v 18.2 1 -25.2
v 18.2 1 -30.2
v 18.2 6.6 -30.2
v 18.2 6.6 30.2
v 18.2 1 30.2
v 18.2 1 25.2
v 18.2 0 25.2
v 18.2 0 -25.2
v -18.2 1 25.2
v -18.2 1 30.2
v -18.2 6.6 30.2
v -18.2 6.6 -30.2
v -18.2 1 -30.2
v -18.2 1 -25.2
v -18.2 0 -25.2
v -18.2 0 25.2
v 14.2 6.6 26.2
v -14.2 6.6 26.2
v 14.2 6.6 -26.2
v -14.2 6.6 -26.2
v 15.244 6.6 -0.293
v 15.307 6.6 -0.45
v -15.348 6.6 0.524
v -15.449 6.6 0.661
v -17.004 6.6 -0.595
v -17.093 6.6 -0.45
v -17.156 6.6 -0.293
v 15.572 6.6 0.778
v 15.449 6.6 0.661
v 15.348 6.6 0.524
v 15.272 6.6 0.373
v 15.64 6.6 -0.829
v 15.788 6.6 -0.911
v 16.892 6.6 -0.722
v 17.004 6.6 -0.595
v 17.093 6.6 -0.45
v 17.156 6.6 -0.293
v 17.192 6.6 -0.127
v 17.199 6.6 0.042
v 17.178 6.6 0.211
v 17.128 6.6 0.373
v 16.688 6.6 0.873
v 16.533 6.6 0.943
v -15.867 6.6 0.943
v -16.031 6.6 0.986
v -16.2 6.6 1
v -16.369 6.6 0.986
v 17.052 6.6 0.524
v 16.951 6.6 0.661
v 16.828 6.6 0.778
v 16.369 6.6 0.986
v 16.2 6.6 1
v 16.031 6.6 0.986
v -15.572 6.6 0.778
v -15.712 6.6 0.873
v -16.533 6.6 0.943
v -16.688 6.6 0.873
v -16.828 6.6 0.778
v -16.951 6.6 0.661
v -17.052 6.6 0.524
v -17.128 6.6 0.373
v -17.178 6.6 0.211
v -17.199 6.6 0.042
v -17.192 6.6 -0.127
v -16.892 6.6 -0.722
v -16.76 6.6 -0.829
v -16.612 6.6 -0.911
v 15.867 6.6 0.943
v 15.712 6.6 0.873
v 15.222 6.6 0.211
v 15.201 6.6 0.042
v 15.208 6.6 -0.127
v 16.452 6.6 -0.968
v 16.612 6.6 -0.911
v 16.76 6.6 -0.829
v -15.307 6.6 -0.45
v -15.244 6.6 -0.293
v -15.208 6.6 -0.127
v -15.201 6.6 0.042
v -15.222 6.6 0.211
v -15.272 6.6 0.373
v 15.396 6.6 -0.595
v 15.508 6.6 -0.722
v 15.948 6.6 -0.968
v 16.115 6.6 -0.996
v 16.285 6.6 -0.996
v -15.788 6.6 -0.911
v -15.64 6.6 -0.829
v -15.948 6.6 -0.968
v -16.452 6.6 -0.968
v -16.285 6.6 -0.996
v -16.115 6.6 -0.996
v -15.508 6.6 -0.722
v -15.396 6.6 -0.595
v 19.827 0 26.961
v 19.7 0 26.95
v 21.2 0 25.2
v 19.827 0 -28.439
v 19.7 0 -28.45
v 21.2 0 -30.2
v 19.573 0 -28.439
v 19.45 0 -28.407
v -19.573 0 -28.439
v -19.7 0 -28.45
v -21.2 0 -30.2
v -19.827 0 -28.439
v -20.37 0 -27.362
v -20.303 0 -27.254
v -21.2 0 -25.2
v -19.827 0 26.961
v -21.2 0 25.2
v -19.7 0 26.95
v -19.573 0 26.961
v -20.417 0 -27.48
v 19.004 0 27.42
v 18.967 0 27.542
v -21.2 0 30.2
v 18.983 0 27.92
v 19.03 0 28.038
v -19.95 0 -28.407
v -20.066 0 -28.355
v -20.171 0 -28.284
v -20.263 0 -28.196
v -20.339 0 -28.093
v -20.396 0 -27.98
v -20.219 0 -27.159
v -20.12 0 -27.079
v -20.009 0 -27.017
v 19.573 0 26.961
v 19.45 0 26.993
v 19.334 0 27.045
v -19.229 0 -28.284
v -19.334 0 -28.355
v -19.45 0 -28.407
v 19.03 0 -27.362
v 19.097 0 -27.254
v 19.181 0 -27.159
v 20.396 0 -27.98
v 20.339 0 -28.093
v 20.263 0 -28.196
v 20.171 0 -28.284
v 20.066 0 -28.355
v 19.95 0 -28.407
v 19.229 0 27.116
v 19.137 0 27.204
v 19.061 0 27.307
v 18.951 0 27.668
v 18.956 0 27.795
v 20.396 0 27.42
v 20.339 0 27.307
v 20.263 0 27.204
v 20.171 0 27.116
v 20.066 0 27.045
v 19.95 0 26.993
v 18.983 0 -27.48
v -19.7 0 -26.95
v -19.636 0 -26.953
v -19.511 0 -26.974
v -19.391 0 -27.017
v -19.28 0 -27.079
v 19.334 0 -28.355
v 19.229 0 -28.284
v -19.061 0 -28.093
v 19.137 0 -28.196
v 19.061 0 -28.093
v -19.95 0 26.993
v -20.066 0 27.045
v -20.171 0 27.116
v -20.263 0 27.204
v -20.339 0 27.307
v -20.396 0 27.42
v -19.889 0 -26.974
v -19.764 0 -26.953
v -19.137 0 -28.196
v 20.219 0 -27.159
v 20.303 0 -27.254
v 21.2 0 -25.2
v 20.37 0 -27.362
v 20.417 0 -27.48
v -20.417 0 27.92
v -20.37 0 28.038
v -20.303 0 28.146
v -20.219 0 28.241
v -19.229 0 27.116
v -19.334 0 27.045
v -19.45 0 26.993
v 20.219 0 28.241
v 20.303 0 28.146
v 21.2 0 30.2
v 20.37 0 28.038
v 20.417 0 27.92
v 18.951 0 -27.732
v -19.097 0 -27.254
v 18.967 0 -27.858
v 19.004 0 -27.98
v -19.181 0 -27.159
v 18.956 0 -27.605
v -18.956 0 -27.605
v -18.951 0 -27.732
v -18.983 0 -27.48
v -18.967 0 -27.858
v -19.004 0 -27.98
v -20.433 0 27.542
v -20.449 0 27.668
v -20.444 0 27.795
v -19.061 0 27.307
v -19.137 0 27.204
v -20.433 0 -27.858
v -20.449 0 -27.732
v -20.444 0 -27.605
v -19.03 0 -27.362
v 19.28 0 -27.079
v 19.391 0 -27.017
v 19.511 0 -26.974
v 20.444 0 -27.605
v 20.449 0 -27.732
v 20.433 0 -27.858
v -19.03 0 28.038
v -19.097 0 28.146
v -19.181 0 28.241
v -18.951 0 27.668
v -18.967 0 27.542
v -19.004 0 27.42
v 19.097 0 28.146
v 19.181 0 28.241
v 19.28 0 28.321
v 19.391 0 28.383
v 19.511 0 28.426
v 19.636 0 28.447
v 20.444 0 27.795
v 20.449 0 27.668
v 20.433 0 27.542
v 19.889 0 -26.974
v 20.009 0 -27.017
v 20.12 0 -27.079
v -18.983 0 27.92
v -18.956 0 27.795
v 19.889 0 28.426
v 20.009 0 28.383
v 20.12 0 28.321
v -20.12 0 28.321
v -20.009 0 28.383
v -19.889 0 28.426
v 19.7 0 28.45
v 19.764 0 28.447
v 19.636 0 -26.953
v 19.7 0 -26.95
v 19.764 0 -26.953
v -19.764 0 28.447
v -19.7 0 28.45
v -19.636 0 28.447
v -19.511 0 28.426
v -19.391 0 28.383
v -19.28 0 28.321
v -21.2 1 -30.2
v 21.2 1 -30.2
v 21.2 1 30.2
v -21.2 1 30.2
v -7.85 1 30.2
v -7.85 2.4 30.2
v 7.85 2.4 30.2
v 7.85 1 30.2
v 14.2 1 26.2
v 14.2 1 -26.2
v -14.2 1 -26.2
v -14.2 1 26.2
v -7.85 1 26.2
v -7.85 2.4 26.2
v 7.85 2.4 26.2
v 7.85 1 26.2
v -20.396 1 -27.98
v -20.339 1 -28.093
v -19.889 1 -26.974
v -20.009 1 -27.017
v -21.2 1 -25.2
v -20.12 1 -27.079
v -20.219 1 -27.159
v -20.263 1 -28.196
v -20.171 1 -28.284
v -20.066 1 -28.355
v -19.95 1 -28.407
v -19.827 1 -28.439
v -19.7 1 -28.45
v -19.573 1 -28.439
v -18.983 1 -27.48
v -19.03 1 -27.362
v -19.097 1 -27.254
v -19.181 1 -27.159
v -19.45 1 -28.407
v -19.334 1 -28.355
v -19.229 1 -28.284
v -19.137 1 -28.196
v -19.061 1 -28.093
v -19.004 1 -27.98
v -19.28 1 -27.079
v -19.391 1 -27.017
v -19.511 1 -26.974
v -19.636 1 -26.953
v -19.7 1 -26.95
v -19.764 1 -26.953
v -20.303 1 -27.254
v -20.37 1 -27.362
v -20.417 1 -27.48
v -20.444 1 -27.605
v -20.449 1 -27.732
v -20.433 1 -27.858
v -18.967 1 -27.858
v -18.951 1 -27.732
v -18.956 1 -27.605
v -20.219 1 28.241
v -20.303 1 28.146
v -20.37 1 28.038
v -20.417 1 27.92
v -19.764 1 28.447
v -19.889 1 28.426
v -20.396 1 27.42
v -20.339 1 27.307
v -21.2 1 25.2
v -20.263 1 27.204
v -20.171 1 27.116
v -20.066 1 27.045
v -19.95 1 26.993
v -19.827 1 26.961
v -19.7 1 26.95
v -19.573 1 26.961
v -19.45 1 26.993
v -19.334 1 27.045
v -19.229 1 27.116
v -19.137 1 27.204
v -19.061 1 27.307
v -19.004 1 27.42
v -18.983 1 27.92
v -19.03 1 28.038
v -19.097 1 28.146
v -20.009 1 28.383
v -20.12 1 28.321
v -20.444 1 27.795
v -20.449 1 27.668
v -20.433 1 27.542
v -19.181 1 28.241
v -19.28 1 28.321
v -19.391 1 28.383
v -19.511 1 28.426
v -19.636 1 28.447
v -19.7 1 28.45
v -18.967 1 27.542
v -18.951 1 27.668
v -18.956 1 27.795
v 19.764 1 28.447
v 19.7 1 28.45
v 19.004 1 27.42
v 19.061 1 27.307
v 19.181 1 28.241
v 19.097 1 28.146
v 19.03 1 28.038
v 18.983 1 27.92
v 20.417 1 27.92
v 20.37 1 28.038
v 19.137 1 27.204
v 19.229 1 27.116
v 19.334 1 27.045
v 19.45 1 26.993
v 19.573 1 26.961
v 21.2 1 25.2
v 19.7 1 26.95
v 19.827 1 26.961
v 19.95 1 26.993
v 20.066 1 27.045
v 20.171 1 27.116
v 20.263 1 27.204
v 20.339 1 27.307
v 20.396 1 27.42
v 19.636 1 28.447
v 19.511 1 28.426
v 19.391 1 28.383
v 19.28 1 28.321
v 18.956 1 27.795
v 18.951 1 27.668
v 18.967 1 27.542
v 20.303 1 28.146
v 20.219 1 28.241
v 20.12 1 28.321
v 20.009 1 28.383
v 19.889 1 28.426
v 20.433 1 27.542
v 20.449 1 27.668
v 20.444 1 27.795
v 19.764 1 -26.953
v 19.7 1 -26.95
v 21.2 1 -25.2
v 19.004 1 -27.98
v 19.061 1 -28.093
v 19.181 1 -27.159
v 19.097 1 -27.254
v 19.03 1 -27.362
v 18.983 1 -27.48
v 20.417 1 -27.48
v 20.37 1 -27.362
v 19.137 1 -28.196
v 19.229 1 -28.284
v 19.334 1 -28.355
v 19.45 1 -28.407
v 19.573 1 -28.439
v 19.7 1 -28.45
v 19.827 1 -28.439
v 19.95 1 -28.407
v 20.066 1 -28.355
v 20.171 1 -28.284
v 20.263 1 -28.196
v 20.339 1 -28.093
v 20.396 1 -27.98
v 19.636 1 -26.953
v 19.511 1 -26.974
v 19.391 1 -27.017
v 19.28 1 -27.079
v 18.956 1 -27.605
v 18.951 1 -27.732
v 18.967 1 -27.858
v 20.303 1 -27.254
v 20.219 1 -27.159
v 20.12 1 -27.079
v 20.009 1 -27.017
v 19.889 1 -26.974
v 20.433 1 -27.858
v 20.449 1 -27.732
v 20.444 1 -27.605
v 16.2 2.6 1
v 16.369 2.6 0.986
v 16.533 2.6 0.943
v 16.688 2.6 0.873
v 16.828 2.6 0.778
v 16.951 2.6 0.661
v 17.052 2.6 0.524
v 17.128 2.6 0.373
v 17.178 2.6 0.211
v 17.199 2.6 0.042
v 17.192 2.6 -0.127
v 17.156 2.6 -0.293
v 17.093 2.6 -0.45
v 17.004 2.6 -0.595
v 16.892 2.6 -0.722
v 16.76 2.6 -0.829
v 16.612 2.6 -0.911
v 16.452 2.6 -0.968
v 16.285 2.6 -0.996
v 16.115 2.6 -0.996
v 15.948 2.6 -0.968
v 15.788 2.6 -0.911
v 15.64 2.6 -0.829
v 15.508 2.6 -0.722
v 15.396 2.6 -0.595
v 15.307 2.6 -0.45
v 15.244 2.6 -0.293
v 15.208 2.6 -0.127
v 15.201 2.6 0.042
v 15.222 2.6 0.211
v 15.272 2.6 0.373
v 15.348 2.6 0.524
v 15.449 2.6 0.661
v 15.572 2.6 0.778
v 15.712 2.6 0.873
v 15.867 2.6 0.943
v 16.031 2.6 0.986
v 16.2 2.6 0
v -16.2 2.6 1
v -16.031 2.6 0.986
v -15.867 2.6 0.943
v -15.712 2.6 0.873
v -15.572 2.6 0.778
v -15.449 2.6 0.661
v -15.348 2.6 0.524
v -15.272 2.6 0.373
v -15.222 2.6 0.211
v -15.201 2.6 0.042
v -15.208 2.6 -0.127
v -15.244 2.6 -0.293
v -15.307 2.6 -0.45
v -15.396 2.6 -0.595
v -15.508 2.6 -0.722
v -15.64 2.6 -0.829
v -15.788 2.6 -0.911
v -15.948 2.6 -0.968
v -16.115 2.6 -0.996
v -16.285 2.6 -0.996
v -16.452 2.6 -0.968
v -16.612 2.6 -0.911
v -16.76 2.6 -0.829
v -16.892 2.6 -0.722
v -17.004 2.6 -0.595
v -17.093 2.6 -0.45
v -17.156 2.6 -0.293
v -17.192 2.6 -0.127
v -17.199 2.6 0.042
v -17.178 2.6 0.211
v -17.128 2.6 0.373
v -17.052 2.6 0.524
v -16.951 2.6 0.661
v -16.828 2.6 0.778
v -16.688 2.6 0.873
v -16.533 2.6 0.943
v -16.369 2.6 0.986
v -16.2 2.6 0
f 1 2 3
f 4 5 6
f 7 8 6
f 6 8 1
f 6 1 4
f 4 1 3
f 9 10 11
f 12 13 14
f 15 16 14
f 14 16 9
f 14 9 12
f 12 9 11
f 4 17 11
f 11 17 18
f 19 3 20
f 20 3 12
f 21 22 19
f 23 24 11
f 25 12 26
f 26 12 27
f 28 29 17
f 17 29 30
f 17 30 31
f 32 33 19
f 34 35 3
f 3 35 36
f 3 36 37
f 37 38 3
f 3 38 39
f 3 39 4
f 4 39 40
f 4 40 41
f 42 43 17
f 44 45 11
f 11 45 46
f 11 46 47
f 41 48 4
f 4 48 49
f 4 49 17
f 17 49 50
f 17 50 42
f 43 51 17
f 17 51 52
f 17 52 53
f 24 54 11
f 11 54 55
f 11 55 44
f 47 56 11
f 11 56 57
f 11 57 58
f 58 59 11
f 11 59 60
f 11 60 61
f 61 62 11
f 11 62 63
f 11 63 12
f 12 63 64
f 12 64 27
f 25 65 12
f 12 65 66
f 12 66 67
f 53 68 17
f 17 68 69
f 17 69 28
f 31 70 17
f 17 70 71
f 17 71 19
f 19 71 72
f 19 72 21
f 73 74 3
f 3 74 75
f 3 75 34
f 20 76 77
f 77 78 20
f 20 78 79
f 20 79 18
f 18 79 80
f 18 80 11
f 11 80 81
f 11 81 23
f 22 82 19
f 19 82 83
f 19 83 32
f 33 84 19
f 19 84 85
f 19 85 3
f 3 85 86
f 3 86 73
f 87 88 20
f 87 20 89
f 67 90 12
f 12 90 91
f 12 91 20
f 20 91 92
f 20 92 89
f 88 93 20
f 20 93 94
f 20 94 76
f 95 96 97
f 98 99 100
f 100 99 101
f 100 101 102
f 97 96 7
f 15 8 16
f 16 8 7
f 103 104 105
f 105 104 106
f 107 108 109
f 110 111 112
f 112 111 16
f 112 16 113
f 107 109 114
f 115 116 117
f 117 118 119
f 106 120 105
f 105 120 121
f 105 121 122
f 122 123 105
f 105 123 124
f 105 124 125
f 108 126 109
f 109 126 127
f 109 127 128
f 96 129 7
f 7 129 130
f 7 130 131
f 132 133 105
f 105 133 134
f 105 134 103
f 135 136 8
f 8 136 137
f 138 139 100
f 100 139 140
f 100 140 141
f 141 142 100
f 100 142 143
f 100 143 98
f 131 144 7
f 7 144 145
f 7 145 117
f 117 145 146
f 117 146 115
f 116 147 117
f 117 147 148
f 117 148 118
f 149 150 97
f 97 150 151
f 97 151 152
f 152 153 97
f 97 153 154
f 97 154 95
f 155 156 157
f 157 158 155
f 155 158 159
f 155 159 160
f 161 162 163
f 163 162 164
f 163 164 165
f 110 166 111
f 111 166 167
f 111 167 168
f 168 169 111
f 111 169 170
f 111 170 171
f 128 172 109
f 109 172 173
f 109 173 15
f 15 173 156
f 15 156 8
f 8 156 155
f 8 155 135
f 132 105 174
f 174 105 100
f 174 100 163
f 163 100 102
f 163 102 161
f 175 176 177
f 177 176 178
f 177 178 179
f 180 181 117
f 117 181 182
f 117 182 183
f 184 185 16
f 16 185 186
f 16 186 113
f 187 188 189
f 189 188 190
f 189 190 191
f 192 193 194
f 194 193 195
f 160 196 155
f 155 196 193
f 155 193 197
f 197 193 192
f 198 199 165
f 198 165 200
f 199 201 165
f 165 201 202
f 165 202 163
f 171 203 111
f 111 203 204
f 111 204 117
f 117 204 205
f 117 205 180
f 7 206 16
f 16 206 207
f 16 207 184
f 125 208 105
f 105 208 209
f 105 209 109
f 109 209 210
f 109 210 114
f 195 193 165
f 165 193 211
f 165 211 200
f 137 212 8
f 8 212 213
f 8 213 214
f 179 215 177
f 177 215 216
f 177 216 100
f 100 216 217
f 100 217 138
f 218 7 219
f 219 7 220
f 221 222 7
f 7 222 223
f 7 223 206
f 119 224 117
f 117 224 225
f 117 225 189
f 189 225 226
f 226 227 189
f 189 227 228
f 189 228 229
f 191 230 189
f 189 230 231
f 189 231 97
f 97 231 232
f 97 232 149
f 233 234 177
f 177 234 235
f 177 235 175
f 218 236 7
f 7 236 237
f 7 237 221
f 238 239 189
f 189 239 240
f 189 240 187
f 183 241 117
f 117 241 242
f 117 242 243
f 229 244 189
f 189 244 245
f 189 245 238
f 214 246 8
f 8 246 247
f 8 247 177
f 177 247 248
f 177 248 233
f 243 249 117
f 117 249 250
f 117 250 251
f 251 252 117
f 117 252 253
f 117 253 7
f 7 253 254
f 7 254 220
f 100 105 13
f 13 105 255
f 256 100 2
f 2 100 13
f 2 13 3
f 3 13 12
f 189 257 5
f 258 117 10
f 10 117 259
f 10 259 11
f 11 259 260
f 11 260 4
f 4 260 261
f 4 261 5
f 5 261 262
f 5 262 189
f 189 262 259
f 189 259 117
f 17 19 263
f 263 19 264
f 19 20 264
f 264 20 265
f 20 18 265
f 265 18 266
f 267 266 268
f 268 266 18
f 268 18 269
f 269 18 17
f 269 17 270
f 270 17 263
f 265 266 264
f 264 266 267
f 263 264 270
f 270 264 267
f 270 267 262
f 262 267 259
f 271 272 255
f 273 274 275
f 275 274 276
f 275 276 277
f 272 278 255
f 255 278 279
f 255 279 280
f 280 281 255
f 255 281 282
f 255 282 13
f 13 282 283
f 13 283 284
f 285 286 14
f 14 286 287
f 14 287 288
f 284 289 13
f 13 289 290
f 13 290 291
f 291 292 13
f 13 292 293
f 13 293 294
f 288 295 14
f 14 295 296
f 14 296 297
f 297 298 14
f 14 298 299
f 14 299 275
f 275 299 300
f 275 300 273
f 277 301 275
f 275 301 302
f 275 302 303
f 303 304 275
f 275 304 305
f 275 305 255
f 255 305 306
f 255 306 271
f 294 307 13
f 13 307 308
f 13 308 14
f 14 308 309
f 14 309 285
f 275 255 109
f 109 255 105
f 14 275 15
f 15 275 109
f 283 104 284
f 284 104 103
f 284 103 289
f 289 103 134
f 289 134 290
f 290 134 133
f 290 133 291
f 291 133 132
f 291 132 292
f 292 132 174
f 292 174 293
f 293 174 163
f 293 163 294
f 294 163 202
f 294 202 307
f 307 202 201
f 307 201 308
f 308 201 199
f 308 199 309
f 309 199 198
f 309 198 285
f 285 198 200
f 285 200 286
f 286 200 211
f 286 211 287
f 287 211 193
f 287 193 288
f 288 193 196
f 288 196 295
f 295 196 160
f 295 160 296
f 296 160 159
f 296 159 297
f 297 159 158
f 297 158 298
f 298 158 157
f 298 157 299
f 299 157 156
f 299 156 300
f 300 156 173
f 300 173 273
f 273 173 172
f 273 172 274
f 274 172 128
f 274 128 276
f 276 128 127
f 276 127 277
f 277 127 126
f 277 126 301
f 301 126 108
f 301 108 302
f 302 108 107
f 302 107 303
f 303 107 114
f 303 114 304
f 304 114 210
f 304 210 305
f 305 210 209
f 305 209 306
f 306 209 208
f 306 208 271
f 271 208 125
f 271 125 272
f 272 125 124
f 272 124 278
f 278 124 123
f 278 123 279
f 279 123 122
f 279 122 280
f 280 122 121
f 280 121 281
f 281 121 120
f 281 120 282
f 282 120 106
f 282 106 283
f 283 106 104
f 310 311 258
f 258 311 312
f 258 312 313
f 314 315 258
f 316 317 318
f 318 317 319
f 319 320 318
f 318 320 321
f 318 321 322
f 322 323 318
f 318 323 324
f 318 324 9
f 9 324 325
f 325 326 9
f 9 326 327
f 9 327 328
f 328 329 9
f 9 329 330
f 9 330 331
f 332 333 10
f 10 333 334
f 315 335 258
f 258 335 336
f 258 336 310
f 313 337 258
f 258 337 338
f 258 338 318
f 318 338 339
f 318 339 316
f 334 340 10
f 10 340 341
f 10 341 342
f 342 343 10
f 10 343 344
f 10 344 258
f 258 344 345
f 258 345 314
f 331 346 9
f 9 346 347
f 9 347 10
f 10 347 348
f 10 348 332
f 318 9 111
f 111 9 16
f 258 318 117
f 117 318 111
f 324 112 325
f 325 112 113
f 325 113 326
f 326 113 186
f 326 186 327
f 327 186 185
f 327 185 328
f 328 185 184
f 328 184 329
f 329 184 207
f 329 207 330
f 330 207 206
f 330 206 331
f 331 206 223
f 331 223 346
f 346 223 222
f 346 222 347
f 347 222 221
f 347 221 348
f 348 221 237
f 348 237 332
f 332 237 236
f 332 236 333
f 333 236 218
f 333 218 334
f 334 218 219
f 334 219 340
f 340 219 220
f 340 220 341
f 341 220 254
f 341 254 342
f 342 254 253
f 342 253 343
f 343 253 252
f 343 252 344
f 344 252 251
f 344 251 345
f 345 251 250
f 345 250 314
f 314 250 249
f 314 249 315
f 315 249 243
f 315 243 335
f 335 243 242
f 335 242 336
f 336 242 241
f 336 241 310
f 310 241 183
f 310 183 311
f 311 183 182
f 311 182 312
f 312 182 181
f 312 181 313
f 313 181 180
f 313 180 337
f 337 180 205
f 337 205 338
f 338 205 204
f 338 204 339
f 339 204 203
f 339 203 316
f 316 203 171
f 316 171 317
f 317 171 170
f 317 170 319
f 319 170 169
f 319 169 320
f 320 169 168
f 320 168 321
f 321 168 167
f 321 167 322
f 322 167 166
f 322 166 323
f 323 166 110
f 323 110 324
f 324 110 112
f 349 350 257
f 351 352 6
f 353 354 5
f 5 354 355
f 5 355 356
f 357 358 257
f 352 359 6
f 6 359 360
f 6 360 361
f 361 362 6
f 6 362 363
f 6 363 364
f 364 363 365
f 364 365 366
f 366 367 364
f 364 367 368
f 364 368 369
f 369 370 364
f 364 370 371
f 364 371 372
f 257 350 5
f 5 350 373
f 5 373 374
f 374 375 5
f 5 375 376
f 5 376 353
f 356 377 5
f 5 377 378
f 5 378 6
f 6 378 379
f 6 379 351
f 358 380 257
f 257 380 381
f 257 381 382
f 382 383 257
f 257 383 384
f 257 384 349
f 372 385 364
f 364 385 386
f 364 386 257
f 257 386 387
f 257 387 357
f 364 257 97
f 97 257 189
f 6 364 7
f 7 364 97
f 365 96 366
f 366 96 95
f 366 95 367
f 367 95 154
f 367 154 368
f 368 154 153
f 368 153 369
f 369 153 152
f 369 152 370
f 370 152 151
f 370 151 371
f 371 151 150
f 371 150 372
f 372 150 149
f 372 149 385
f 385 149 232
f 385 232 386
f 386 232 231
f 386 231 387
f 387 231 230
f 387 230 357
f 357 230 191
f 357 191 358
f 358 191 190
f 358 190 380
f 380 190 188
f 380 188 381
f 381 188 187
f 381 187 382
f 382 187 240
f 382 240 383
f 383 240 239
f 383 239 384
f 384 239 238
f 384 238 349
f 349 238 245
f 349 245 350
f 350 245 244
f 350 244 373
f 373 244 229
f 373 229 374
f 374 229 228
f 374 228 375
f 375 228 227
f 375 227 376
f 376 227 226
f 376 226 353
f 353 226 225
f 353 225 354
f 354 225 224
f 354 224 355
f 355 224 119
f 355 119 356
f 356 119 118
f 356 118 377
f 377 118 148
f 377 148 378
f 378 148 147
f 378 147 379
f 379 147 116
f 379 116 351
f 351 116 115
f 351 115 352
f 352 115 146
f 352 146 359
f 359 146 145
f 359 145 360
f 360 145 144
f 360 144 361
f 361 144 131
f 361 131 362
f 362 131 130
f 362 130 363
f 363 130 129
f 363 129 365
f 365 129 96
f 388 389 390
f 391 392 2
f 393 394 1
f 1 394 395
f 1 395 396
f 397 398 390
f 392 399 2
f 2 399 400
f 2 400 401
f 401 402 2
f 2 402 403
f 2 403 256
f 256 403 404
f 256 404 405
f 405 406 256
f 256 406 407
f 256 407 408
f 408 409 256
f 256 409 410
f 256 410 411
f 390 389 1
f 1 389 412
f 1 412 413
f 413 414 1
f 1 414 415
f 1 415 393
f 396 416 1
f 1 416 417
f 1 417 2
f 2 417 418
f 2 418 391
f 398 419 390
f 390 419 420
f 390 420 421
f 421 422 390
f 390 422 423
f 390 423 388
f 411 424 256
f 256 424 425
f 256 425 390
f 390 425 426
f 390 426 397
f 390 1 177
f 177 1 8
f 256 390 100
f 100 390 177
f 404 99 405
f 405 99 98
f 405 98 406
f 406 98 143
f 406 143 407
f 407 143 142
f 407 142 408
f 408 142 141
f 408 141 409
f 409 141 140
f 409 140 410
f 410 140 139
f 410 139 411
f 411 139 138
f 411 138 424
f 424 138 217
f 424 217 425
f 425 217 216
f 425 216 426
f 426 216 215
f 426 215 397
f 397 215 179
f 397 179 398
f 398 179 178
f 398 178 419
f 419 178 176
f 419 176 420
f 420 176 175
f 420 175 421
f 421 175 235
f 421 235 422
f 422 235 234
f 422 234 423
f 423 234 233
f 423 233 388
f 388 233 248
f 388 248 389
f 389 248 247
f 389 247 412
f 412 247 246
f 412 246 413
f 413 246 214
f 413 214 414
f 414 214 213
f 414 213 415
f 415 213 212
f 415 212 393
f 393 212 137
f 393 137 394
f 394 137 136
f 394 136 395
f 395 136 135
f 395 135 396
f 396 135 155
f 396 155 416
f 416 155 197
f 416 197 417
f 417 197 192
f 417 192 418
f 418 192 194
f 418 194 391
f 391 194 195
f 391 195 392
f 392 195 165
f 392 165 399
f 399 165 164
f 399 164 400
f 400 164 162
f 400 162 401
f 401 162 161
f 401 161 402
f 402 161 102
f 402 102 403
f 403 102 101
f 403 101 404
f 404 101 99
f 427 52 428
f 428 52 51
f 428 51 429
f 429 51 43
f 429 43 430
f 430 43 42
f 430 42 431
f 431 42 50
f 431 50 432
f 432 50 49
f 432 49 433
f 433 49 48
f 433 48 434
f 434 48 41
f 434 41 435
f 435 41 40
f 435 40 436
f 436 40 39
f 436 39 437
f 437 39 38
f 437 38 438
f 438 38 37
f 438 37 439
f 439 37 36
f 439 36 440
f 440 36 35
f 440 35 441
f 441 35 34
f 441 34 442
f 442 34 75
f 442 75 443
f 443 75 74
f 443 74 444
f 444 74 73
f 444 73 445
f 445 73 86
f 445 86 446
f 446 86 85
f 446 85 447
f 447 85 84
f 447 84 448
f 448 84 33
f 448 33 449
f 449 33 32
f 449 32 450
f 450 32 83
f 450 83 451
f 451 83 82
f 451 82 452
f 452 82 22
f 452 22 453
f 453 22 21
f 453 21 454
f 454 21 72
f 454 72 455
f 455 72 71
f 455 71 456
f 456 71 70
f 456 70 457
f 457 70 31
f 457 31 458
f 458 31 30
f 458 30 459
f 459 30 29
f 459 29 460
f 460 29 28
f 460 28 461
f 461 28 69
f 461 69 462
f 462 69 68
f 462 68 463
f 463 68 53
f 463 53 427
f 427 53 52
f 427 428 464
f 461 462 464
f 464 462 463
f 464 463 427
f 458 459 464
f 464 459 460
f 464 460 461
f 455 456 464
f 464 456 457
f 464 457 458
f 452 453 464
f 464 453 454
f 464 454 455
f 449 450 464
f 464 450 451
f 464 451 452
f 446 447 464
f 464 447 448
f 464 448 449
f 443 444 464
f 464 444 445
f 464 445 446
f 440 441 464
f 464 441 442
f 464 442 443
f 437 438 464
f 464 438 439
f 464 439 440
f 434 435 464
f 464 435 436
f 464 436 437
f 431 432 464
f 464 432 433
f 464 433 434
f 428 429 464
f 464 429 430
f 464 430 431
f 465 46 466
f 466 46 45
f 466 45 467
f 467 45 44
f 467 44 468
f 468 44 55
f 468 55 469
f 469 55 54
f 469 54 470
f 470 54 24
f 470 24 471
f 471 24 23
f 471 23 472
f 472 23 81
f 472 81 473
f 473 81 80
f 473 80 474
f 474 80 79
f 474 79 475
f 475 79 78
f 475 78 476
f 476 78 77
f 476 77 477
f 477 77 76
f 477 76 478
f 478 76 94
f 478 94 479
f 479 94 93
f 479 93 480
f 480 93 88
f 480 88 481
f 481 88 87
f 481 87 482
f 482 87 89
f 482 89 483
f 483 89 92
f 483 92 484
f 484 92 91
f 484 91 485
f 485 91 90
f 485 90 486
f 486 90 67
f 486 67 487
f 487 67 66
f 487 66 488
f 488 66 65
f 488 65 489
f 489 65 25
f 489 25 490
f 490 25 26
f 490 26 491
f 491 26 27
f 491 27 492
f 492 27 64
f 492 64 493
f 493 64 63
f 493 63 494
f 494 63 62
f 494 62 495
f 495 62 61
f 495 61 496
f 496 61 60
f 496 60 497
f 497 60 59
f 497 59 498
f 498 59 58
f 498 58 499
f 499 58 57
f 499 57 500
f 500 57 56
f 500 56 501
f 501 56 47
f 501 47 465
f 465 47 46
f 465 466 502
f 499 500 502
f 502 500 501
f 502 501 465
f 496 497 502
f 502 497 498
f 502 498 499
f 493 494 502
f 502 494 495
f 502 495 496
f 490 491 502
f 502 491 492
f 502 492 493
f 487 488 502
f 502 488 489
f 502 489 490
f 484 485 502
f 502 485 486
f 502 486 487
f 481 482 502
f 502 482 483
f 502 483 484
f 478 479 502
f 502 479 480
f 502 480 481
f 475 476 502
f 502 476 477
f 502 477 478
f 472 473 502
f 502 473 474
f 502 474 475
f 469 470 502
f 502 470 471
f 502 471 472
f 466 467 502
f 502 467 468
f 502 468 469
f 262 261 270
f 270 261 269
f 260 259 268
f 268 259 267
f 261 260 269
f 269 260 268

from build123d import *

# Parameters (mm, degrees)
ESBO_O1_W                = 36.4
ESBO_O1_H                = 60.4
ESBO_O1_W_2              = 28.4
ESBO_O1_H_2              = 52.4
RESSALTO_EXTRUS_O1_DEPTH = 6.6
ESBO_O2_W                = 28.4
ESBO_O2_H                = 52.4
RESSALTO_EXTRUS_O2_DEPTH = 1
ESBO_O5_W                = 3
ESBO_O5_H                = 5
ESBO_O5_R                = 0.75
RESSALTO_EXTRUS_O3_DEPTH = 1
ESBO_O6_R                = 1
CORTE_EXTRUS_O3_DEPTH    = 4
ESBO_O3_W                = 15.7
ESBO_O3_H                = 1.4
CORTE_EXTRUS_O4_DEPTH    = 5


with BuildPart() as part:
    # Esboço1 → Ressalto-extrusão1 (new body)
    with BuildSketch(Plane(origin=(0, 0, 0), x_dir=(1, 0, 0), z_dir=(0, 1, 0))):
        Rectangle(ESBO_O1_W, ESBO_O1_H)
        Rectangle(ESBO_O1_W_2, ESBO_O1_H_2, mode=Mode.SUBTRACT)
    extrude(amount=RESSALTO_EXTRUS_O1_DEPTH)

    # Esboço2 → Ressalto-extrusão2 (add)
    with BuildSketch(Plane(origin=(0, 0, 0), x_dir=(1, 0, 0), z_dir=(0, 1, 0))):
        Rectangle(ESBO_O2_W, ESBO_O2_H)
    extrude(amount=RESSALTO_EXTRUS_O2_DEPTH)

    # Esboço5 → Ressalto-extrusão3 (add)
    # profile 1 of 4: a face of its own
    with BuildSketch(Plane(origin=(0, 0, 0), x_dir=(1, 0, 0), z_dir=(0, 1, 0))):
        with Locations((-19.7, 27.7)):
            Rectangle(ESBO_O5_W, ESBO_O5_H)
        with Locations(Location((-19.7, 27.7, 0), (0, 0, 270))):
            Circle(ESBO_O5_R, mode=Mode.SUBTRACT)
    # profile 2 of 4: a face of its own
    with BuildSketch(Plane(origin=(0, 0, 0), x_dir=(1, 0, 0), z_dir=(0, 1, 0))):
        with Locations((-19.7, -27.7)):
            Rectangle(ESBO_O5_W, ESBO_O5_H)
        with Locations(Location((-19.7, -27.7, 0), (0, 0, 270))):
            Circle(ESBO_O5_R, mode=Mode.SUBTRACT)
    # profile 3 of 4: a face of its own
    with BuildSketch(Plane(origin=(0, 0, 0), x_dir=(1, 0, 0), z_dir=(0, 1, 0))):
        with Locations((19.7, -27.7)):
            Rectangle(ESBO_O5_W, ESBO_O5_H)
        with Locations(Location((19.7, -27.7, 0), (0, 0, 270))):
            Circle(ESBO_O5_R, mode=Mode.SUBTRACT)
    # profile 4 of 4: a face of its own
    with BuildSketch(Plane(origin=(0, 0, 0), x_dir=(1, 0, 0), z_dir=(0, 1, 0))):
        with Locations((19.7, 27.7)):
            Rectangle(ESBO_O5_W, ESBO_O5_H)
        with Locations(Location((19.7, 27.7, 0), (0, 0, 270))):
            Circle(ESBO_O5_R, mode=Mode.SUBTRACT)
    extrude(amount=RESSALTO_EXTRUS_O3_DEPTH)

    # Esboço6 → Corte-extrusão3 (cut)
    with BuildSketch(Plane(origin=(0, 6.6, 0), x_dir=(1, 0, 0), z_dir=(0, 1, 0))):
        with Locations(Location((-16.2, 0, 0), (0, 0, 270))):
            Circle(ESBO_O6_R)
        with Locations(Location((16.2, 0, 0), (0, 0, 270))):
            Circle(ESBO_O6_R)
    extrude(amount=-CORTE_EXTRUS_O3_DEPTH, mode=Mode.SUBTRACT)

    # Esboço3 → Corte-extrusão4 (cut)
    with BuildSketch(Plane.XY.offset(30.2)):
        with Locations((0, 1.7)):
            Rectangle(ESBO_O3_W, ESBO_O3_H)
    extrude(amount=-CORTE_EXTRUS_O4_DEPTH, mode=Mode.SUBTRACT)


solid = part.part
